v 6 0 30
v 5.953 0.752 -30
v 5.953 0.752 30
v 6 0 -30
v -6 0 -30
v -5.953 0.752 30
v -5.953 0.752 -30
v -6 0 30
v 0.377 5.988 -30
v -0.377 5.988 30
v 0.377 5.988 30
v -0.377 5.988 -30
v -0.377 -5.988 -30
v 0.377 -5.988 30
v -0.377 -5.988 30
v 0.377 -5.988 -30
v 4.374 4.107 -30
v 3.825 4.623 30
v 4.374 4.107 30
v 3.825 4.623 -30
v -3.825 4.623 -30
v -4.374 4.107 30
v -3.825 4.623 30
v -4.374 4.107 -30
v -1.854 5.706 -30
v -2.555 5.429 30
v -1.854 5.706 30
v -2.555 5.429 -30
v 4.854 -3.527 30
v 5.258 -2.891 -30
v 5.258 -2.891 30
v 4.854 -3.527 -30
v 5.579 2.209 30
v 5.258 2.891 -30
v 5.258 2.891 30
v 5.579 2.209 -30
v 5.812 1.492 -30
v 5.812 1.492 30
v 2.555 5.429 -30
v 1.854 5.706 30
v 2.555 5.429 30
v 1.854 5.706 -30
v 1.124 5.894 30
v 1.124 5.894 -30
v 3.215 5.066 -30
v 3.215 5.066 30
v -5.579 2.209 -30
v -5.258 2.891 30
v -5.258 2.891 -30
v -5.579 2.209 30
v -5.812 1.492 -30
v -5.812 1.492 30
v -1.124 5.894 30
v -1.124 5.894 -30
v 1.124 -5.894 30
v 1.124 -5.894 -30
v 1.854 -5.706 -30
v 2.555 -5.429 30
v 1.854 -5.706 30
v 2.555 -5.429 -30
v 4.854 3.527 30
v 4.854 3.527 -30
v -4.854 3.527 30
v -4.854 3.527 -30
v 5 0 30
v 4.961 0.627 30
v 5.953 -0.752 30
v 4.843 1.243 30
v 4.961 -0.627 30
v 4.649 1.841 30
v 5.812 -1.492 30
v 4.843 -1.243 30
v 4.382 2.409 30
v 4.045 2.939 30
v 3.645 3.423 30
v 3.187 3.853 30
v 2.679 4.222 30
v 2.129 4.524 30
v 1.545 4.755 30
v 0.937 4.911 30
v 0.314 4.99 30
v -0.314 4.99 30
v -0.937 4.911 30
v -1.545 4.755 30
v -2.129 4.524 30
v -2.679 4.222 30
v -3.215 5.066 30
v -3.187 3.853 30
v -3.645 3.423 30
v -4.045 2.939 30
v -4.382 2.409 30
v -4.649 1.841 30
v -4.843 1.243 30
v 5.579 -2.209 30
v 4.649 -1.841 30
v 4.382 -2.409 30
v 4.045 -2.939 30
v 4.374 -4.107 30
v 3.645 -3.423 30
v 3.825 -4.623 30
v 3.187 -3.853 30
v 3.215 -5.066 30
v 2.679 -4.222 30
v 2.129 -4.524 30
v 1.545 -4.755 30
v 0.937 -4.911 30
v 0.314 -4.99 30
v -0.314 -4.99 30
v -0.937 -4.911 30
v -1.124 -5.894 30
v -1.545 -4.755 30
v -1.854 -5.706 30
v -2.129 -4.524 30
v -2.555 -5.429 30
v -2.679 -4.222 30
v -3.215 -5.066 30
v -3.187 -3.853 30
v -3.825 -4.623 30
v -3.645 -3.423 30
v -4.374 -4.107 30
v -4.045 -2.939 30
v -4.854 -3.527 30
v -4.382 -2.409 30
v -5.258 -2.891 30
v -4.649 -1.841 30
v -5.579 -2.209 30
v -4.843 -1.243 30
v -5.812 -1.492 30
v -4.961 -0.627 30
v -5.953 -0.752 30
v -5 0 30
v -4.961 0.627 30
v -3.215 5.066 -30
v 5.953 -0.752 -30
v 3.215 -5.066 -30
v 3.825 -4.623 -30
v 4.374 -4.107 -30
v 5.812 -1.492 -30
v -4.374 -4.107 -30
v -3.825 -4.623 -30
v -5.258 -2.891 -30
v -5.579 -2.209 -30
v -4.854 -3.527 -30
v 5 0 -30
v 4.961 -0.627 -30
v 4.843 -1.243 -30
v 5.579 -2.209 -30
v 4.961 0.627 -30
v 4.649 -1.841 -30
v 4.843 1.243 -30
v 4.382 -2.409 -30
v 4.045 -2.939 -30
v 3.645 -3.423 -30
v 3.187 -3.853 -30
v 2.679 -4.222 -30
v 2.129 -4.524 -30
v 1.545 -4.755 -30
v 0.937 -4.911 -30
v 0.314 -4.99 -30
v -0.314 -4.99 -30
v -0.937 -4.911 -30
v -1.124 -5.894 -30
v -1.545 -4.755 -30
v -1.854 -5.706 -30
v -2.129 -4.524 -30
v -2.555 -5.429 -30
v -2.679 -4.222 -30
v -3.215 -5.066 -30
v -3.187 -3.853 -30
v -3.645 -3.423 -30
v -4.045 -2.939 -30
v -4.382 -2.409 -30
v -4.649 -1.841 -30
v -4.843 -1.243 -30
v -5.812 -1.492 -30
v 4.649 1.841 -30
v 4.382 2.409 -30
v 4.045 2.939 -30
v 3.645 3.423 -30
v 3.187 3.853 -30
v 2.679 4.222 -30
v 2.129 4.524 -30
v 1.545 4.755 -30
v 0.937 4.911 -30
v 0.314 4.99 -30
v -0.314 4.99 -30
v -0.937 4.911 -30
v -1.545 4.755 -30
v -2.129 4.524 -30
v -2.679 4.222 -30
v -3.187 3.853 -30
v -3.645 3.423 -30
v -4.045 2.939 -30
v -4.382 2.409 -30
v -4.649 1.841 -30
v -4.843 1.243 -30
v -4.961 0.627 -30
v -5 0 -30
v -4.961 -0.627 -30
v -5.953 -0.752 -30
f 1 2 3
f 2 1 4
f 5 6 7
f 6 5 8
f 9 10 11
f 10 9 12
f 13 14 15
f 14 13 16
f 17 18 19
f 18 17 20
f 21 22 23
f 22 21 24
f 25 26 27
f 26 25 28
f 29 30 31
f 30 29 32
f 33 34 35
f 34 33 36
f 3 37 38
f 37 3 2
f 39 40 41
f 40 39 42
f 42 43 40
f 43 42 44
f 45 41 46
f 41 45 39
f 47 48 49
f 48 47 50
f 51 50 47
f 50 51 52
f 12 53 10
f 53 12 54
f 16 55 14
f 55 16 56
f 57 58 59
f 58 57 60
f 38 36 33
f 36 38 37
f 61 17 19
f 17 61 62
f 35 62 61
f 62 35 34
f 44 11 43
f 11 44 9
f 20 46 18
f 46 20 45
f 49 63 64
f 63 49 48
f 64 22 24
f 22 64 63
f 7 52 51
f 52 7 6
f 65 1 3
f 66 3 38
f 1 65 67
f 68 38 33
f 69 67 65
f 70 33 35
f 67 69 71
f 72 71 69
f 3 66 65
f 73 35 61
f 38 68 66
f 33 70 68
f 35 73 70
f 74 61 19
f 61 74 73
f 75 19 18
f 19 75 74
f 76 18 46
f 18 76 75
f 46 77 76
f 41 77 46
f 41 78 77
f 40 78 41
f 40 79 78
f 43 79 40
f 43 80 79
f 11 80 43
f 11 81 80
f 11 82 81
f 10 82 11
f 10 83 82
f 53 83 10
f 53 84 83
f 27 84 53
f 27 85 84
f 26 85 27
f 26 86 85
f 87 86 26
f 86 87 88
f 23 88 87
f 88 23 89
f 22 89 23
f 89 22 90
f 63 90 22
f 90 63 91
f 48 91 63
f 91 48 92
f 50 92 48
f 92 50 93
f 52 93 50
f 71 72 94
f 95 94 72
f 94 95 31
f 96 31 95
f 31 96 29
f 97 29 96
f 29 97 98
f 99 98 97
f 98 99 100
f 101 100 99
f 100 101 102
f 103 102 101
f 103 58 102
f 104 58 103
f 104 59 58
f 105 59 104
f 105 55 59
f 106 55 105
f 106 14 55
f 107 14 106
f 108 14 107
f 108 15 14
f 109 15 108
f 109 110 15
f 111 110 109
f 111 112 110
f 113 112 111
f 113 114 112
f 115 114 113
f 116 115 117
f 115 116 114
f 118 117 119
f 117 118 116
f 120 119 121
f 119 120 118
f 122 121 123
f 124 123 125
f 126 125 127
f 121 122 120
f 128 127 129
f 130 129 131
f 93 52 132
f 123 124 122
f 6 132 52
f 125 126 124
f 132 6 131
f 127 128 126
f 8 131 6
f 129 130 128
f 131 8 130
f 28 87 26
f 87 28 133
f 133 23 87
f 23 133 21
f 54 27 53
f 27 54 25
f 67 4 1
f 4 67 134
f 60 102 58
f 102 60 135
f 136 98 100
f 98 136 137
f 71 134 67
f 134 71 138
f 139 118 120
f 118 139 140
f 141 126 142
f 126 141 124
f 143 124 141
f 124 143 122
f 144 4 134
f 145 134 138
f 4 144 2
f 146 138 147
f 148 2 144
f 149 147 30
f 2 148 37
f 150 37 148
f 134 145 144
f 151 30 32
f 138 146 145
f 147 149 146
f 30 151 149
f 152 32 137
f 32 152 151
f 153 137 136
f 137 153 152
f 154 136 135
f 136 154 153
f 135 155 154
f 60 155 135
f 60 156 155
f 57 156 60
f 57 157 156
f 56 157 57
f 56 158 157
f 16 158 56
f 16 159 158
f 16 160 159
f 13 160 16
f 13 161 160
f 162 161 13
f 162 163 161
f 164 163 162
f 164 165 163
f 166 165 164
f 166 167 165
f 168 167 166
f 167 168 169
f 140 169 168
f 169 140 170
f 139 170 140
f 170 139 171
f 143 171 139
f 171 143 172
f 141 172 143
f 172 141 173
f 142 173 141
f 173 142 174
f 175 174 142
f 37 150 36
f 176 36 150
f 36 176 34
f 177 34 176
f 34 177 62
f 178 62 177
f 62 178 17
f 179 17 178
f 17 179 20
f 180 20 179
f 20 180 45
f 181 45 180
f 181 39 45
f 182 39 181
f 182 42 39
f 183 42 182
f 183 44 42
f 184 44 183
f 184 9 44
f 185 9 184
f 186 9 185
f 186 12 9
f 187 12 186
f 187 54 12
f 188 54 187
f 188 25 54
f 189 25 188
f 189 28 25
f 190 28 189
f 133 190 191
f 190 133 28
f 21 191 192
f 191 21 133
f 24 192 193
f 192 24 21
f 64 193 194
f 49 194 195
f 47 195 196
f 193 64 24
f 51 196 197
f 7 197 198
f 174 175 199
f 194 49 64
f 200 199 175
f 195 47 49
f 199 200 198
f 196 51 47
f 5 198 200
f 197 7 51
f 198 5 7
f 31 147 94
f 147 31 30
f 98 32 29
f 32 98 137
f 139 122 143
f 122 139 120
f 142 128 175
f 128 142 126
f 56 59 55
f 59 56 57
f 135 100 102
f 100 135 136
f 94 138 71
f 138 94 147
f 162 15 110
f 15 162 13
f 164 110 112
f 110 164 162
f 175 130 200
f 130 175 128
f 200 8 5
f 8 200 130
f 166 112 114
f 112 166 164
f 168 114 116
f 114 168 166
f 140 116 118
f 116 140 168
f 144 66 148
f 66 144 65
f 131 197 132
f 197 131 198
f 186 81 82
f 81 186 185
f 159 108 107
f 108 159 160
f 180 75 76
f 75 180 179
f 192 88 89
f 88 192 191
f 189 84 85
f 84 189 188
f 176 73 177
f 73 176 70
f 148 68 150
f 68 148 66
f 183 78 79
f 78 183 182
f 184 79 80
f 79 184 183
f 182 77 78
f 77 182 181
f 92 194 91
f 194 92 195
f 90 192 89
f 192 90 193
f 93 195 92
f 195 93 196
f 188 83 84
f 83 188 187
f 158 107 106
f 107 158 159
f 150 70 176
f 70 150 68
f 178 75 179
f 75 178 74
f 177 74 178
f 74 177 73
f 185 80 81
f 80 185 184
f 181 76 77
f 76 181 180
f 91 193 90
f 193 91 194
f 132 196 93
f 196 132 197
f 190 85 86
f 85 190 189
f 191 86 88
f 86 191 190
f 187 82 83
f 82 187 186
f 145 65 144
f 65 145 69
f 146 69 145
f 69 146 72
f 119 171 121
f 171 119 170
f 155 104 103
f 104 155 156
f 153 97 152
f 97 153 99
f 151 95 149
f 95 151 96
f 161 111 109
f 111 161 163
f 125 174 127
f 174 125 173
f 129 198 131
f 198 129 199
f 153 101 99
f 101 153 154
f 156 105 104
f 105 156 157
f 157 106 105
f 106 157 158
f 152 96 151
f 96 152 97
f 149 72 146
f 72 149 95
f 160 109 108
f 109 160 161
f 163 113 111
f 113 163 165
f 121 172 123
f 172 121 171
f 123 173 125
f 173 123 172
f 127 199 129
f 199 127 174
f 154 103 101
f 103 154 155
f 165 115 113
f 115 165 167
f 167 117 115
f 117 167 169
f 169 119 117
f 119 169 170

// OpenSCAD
$fn = 50;


difference() {
	union() {
		translate(v = [0, 0, -30.0000000000]) {
			cylinder(h = 60, r = 6.0000000000);
		}
	}
	union() {
		translate(v = [0, 0, -100.0000000000]) {
			cylinder(h = 200, r = 5.0000000000);
		}
	}
}
